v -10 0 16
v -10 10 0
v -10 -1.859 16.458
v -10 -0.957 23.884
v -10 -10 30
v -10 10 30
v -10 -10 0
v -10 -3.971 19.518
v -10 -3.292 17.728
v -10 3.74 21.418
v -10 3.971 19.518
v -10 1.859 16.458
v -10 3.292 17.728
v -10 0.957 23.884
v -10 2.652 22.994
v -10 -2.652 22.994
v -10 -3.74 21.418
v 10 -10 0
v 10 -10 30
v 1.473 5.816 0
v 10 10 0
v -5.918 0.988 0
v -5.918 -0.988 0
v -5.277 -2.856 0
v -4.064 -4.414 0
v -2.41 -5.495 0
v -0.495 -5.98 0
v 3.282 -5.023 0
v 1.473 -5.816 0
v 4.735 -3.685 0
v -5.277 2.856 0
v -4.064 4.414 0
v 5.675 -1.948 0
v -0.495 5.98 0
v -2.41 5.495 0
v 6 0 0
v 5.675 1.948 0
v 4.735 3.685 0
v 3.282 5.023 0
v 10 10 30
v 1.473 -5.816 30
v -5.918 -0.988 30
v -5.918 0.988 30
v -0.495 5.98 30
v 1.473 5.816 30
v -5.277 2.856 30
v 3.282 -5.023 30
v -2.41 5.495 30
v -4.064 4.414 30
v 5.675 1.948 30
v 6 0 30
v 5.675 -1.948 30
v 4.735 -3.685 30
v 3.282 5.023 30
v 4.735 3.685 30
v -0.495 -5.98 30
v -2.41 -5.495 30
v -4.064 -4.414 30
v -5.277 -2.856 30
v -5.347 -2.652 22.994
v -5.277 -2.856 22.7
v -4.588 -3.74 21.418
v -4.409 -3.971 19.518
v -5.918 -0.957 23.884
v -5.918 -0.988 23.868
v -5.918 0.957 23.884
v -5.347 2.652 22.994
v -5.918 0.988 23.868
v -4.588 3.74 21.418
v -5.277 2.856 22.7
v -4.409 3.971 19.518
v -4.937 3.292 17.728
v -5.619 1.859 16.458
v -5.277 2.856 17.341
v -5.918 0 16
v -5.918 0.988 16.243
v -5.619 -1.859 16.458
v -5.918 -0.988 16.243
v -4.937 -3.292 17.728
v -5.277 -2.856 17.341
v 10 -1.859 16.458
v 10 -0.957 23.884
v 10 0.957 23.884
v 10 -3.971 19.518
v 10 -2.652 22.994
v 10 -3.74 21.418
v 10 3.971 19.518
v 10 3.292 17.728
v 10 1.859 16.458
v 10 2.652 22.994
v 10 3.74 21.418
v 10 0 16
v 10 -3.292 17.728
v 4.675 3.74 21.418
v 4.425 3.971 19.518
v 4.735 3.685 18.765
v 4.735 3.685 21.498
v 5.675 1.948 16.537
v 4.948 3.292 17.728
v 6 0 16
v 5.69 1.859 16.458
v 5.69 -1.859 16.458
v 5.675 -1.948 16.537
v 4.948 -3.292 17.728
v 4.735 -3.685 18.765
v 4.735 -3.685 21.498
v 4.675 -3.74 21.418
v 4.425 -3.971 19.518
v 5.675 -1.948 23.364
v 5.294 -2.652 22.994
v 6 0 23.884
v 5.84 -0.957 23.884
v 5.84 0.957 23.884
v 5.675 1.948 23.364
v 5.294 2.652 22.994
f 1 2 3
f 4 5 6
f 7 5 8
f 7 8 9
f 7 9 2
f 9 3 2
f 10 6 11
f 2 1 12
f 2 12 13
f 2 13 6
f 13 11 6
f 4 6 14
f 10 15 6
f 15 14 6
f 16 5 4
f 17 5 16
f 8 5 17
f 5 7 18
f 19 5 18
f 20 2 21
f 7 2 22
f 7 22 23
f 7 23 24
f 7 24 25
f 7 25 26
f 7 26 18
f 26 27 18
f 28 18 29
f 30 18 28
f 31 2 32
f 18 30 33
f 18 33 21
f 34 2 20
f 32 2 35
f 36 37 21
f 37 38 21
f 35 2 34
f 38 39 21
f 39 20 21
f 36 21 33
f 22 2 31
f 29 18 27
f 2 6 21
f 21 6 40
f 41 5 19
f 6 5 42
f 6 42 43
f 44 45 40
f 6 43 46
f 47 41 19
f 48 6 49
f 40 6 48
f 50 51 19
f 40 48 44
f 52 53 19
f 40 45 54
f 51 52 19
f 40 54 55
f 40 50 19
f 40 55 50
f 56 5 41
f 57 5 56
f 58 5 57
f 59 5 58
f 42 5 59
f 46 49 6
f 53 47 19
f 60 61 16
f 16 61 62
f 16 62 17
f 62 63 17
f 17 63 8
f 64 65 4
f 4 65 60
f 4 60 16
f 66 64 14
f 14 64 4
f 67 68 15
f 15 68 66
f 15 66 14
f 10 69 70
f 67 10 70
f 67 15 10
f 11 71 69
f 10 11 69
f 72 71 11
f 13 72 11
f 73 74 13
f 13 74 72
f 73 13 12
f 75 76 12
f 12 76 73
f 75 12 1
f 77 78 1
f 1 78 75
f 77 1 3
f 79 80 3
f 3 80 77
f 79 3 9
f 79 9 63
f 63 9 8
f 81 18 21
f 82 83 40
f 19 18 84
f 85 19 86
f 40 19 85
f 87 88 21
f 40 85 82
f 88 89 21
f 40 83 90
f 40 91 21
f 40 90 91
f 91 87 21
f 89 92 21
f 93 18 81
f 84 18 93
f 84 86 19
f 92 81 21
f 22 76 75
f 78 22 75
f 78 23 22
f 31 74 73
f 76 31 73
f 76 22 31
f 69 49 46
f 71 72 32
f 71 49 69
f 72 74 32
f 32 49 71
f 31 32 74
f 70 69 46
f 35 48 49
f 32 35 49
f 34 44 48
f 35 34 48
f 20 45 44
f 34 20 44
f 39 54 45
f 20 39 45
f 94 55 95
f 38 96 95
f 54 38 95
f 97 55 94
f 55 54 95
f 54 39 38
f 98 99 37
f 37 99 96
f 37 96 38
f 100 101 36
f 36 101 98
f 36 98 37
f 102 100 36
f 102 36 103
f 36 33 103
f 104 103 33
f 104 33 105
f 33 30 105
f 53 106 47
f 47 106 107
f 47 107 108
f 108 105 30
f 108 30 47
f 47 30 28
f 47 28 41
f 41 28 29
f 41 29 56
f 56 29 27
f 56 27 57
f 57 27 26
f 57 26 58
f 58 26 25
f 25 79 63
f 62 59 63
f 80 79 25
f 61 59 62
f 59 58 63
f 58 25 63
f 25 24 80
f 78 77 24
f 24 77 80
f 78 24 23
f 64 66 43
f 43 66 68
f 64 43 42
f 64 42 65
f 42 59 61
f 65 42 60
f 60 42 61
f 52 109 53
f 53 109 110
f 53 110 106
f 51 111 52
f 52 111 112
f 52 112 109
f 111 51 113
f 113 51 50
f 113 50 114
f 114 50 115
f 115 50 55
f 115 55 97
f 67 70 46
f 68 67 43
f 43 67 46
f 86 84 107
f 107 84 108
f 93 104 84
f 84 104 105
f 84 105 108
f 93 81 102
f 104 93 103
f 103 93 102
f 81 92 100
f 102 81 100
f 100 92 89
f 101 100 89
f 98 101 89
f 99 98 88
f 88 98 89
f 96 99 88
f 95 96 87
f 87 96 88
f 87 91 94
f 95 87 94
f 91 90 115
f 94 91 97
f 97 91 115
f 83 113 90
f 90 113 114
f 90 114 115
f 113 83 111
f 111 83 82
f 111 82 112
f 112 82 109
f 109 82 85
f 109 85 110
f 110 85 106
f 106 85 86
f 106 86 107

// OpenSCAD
module z_idler() {
	difference() {
		translate([-10,-10, 0]) cube([20,20,30]);
		cylinder(r=6, h=30);
		translate([-10-.1, 0, 20]) rotate([0, 90, 0]) cylinder(r=4, h=20+.2);
	}
}

z_idler();
